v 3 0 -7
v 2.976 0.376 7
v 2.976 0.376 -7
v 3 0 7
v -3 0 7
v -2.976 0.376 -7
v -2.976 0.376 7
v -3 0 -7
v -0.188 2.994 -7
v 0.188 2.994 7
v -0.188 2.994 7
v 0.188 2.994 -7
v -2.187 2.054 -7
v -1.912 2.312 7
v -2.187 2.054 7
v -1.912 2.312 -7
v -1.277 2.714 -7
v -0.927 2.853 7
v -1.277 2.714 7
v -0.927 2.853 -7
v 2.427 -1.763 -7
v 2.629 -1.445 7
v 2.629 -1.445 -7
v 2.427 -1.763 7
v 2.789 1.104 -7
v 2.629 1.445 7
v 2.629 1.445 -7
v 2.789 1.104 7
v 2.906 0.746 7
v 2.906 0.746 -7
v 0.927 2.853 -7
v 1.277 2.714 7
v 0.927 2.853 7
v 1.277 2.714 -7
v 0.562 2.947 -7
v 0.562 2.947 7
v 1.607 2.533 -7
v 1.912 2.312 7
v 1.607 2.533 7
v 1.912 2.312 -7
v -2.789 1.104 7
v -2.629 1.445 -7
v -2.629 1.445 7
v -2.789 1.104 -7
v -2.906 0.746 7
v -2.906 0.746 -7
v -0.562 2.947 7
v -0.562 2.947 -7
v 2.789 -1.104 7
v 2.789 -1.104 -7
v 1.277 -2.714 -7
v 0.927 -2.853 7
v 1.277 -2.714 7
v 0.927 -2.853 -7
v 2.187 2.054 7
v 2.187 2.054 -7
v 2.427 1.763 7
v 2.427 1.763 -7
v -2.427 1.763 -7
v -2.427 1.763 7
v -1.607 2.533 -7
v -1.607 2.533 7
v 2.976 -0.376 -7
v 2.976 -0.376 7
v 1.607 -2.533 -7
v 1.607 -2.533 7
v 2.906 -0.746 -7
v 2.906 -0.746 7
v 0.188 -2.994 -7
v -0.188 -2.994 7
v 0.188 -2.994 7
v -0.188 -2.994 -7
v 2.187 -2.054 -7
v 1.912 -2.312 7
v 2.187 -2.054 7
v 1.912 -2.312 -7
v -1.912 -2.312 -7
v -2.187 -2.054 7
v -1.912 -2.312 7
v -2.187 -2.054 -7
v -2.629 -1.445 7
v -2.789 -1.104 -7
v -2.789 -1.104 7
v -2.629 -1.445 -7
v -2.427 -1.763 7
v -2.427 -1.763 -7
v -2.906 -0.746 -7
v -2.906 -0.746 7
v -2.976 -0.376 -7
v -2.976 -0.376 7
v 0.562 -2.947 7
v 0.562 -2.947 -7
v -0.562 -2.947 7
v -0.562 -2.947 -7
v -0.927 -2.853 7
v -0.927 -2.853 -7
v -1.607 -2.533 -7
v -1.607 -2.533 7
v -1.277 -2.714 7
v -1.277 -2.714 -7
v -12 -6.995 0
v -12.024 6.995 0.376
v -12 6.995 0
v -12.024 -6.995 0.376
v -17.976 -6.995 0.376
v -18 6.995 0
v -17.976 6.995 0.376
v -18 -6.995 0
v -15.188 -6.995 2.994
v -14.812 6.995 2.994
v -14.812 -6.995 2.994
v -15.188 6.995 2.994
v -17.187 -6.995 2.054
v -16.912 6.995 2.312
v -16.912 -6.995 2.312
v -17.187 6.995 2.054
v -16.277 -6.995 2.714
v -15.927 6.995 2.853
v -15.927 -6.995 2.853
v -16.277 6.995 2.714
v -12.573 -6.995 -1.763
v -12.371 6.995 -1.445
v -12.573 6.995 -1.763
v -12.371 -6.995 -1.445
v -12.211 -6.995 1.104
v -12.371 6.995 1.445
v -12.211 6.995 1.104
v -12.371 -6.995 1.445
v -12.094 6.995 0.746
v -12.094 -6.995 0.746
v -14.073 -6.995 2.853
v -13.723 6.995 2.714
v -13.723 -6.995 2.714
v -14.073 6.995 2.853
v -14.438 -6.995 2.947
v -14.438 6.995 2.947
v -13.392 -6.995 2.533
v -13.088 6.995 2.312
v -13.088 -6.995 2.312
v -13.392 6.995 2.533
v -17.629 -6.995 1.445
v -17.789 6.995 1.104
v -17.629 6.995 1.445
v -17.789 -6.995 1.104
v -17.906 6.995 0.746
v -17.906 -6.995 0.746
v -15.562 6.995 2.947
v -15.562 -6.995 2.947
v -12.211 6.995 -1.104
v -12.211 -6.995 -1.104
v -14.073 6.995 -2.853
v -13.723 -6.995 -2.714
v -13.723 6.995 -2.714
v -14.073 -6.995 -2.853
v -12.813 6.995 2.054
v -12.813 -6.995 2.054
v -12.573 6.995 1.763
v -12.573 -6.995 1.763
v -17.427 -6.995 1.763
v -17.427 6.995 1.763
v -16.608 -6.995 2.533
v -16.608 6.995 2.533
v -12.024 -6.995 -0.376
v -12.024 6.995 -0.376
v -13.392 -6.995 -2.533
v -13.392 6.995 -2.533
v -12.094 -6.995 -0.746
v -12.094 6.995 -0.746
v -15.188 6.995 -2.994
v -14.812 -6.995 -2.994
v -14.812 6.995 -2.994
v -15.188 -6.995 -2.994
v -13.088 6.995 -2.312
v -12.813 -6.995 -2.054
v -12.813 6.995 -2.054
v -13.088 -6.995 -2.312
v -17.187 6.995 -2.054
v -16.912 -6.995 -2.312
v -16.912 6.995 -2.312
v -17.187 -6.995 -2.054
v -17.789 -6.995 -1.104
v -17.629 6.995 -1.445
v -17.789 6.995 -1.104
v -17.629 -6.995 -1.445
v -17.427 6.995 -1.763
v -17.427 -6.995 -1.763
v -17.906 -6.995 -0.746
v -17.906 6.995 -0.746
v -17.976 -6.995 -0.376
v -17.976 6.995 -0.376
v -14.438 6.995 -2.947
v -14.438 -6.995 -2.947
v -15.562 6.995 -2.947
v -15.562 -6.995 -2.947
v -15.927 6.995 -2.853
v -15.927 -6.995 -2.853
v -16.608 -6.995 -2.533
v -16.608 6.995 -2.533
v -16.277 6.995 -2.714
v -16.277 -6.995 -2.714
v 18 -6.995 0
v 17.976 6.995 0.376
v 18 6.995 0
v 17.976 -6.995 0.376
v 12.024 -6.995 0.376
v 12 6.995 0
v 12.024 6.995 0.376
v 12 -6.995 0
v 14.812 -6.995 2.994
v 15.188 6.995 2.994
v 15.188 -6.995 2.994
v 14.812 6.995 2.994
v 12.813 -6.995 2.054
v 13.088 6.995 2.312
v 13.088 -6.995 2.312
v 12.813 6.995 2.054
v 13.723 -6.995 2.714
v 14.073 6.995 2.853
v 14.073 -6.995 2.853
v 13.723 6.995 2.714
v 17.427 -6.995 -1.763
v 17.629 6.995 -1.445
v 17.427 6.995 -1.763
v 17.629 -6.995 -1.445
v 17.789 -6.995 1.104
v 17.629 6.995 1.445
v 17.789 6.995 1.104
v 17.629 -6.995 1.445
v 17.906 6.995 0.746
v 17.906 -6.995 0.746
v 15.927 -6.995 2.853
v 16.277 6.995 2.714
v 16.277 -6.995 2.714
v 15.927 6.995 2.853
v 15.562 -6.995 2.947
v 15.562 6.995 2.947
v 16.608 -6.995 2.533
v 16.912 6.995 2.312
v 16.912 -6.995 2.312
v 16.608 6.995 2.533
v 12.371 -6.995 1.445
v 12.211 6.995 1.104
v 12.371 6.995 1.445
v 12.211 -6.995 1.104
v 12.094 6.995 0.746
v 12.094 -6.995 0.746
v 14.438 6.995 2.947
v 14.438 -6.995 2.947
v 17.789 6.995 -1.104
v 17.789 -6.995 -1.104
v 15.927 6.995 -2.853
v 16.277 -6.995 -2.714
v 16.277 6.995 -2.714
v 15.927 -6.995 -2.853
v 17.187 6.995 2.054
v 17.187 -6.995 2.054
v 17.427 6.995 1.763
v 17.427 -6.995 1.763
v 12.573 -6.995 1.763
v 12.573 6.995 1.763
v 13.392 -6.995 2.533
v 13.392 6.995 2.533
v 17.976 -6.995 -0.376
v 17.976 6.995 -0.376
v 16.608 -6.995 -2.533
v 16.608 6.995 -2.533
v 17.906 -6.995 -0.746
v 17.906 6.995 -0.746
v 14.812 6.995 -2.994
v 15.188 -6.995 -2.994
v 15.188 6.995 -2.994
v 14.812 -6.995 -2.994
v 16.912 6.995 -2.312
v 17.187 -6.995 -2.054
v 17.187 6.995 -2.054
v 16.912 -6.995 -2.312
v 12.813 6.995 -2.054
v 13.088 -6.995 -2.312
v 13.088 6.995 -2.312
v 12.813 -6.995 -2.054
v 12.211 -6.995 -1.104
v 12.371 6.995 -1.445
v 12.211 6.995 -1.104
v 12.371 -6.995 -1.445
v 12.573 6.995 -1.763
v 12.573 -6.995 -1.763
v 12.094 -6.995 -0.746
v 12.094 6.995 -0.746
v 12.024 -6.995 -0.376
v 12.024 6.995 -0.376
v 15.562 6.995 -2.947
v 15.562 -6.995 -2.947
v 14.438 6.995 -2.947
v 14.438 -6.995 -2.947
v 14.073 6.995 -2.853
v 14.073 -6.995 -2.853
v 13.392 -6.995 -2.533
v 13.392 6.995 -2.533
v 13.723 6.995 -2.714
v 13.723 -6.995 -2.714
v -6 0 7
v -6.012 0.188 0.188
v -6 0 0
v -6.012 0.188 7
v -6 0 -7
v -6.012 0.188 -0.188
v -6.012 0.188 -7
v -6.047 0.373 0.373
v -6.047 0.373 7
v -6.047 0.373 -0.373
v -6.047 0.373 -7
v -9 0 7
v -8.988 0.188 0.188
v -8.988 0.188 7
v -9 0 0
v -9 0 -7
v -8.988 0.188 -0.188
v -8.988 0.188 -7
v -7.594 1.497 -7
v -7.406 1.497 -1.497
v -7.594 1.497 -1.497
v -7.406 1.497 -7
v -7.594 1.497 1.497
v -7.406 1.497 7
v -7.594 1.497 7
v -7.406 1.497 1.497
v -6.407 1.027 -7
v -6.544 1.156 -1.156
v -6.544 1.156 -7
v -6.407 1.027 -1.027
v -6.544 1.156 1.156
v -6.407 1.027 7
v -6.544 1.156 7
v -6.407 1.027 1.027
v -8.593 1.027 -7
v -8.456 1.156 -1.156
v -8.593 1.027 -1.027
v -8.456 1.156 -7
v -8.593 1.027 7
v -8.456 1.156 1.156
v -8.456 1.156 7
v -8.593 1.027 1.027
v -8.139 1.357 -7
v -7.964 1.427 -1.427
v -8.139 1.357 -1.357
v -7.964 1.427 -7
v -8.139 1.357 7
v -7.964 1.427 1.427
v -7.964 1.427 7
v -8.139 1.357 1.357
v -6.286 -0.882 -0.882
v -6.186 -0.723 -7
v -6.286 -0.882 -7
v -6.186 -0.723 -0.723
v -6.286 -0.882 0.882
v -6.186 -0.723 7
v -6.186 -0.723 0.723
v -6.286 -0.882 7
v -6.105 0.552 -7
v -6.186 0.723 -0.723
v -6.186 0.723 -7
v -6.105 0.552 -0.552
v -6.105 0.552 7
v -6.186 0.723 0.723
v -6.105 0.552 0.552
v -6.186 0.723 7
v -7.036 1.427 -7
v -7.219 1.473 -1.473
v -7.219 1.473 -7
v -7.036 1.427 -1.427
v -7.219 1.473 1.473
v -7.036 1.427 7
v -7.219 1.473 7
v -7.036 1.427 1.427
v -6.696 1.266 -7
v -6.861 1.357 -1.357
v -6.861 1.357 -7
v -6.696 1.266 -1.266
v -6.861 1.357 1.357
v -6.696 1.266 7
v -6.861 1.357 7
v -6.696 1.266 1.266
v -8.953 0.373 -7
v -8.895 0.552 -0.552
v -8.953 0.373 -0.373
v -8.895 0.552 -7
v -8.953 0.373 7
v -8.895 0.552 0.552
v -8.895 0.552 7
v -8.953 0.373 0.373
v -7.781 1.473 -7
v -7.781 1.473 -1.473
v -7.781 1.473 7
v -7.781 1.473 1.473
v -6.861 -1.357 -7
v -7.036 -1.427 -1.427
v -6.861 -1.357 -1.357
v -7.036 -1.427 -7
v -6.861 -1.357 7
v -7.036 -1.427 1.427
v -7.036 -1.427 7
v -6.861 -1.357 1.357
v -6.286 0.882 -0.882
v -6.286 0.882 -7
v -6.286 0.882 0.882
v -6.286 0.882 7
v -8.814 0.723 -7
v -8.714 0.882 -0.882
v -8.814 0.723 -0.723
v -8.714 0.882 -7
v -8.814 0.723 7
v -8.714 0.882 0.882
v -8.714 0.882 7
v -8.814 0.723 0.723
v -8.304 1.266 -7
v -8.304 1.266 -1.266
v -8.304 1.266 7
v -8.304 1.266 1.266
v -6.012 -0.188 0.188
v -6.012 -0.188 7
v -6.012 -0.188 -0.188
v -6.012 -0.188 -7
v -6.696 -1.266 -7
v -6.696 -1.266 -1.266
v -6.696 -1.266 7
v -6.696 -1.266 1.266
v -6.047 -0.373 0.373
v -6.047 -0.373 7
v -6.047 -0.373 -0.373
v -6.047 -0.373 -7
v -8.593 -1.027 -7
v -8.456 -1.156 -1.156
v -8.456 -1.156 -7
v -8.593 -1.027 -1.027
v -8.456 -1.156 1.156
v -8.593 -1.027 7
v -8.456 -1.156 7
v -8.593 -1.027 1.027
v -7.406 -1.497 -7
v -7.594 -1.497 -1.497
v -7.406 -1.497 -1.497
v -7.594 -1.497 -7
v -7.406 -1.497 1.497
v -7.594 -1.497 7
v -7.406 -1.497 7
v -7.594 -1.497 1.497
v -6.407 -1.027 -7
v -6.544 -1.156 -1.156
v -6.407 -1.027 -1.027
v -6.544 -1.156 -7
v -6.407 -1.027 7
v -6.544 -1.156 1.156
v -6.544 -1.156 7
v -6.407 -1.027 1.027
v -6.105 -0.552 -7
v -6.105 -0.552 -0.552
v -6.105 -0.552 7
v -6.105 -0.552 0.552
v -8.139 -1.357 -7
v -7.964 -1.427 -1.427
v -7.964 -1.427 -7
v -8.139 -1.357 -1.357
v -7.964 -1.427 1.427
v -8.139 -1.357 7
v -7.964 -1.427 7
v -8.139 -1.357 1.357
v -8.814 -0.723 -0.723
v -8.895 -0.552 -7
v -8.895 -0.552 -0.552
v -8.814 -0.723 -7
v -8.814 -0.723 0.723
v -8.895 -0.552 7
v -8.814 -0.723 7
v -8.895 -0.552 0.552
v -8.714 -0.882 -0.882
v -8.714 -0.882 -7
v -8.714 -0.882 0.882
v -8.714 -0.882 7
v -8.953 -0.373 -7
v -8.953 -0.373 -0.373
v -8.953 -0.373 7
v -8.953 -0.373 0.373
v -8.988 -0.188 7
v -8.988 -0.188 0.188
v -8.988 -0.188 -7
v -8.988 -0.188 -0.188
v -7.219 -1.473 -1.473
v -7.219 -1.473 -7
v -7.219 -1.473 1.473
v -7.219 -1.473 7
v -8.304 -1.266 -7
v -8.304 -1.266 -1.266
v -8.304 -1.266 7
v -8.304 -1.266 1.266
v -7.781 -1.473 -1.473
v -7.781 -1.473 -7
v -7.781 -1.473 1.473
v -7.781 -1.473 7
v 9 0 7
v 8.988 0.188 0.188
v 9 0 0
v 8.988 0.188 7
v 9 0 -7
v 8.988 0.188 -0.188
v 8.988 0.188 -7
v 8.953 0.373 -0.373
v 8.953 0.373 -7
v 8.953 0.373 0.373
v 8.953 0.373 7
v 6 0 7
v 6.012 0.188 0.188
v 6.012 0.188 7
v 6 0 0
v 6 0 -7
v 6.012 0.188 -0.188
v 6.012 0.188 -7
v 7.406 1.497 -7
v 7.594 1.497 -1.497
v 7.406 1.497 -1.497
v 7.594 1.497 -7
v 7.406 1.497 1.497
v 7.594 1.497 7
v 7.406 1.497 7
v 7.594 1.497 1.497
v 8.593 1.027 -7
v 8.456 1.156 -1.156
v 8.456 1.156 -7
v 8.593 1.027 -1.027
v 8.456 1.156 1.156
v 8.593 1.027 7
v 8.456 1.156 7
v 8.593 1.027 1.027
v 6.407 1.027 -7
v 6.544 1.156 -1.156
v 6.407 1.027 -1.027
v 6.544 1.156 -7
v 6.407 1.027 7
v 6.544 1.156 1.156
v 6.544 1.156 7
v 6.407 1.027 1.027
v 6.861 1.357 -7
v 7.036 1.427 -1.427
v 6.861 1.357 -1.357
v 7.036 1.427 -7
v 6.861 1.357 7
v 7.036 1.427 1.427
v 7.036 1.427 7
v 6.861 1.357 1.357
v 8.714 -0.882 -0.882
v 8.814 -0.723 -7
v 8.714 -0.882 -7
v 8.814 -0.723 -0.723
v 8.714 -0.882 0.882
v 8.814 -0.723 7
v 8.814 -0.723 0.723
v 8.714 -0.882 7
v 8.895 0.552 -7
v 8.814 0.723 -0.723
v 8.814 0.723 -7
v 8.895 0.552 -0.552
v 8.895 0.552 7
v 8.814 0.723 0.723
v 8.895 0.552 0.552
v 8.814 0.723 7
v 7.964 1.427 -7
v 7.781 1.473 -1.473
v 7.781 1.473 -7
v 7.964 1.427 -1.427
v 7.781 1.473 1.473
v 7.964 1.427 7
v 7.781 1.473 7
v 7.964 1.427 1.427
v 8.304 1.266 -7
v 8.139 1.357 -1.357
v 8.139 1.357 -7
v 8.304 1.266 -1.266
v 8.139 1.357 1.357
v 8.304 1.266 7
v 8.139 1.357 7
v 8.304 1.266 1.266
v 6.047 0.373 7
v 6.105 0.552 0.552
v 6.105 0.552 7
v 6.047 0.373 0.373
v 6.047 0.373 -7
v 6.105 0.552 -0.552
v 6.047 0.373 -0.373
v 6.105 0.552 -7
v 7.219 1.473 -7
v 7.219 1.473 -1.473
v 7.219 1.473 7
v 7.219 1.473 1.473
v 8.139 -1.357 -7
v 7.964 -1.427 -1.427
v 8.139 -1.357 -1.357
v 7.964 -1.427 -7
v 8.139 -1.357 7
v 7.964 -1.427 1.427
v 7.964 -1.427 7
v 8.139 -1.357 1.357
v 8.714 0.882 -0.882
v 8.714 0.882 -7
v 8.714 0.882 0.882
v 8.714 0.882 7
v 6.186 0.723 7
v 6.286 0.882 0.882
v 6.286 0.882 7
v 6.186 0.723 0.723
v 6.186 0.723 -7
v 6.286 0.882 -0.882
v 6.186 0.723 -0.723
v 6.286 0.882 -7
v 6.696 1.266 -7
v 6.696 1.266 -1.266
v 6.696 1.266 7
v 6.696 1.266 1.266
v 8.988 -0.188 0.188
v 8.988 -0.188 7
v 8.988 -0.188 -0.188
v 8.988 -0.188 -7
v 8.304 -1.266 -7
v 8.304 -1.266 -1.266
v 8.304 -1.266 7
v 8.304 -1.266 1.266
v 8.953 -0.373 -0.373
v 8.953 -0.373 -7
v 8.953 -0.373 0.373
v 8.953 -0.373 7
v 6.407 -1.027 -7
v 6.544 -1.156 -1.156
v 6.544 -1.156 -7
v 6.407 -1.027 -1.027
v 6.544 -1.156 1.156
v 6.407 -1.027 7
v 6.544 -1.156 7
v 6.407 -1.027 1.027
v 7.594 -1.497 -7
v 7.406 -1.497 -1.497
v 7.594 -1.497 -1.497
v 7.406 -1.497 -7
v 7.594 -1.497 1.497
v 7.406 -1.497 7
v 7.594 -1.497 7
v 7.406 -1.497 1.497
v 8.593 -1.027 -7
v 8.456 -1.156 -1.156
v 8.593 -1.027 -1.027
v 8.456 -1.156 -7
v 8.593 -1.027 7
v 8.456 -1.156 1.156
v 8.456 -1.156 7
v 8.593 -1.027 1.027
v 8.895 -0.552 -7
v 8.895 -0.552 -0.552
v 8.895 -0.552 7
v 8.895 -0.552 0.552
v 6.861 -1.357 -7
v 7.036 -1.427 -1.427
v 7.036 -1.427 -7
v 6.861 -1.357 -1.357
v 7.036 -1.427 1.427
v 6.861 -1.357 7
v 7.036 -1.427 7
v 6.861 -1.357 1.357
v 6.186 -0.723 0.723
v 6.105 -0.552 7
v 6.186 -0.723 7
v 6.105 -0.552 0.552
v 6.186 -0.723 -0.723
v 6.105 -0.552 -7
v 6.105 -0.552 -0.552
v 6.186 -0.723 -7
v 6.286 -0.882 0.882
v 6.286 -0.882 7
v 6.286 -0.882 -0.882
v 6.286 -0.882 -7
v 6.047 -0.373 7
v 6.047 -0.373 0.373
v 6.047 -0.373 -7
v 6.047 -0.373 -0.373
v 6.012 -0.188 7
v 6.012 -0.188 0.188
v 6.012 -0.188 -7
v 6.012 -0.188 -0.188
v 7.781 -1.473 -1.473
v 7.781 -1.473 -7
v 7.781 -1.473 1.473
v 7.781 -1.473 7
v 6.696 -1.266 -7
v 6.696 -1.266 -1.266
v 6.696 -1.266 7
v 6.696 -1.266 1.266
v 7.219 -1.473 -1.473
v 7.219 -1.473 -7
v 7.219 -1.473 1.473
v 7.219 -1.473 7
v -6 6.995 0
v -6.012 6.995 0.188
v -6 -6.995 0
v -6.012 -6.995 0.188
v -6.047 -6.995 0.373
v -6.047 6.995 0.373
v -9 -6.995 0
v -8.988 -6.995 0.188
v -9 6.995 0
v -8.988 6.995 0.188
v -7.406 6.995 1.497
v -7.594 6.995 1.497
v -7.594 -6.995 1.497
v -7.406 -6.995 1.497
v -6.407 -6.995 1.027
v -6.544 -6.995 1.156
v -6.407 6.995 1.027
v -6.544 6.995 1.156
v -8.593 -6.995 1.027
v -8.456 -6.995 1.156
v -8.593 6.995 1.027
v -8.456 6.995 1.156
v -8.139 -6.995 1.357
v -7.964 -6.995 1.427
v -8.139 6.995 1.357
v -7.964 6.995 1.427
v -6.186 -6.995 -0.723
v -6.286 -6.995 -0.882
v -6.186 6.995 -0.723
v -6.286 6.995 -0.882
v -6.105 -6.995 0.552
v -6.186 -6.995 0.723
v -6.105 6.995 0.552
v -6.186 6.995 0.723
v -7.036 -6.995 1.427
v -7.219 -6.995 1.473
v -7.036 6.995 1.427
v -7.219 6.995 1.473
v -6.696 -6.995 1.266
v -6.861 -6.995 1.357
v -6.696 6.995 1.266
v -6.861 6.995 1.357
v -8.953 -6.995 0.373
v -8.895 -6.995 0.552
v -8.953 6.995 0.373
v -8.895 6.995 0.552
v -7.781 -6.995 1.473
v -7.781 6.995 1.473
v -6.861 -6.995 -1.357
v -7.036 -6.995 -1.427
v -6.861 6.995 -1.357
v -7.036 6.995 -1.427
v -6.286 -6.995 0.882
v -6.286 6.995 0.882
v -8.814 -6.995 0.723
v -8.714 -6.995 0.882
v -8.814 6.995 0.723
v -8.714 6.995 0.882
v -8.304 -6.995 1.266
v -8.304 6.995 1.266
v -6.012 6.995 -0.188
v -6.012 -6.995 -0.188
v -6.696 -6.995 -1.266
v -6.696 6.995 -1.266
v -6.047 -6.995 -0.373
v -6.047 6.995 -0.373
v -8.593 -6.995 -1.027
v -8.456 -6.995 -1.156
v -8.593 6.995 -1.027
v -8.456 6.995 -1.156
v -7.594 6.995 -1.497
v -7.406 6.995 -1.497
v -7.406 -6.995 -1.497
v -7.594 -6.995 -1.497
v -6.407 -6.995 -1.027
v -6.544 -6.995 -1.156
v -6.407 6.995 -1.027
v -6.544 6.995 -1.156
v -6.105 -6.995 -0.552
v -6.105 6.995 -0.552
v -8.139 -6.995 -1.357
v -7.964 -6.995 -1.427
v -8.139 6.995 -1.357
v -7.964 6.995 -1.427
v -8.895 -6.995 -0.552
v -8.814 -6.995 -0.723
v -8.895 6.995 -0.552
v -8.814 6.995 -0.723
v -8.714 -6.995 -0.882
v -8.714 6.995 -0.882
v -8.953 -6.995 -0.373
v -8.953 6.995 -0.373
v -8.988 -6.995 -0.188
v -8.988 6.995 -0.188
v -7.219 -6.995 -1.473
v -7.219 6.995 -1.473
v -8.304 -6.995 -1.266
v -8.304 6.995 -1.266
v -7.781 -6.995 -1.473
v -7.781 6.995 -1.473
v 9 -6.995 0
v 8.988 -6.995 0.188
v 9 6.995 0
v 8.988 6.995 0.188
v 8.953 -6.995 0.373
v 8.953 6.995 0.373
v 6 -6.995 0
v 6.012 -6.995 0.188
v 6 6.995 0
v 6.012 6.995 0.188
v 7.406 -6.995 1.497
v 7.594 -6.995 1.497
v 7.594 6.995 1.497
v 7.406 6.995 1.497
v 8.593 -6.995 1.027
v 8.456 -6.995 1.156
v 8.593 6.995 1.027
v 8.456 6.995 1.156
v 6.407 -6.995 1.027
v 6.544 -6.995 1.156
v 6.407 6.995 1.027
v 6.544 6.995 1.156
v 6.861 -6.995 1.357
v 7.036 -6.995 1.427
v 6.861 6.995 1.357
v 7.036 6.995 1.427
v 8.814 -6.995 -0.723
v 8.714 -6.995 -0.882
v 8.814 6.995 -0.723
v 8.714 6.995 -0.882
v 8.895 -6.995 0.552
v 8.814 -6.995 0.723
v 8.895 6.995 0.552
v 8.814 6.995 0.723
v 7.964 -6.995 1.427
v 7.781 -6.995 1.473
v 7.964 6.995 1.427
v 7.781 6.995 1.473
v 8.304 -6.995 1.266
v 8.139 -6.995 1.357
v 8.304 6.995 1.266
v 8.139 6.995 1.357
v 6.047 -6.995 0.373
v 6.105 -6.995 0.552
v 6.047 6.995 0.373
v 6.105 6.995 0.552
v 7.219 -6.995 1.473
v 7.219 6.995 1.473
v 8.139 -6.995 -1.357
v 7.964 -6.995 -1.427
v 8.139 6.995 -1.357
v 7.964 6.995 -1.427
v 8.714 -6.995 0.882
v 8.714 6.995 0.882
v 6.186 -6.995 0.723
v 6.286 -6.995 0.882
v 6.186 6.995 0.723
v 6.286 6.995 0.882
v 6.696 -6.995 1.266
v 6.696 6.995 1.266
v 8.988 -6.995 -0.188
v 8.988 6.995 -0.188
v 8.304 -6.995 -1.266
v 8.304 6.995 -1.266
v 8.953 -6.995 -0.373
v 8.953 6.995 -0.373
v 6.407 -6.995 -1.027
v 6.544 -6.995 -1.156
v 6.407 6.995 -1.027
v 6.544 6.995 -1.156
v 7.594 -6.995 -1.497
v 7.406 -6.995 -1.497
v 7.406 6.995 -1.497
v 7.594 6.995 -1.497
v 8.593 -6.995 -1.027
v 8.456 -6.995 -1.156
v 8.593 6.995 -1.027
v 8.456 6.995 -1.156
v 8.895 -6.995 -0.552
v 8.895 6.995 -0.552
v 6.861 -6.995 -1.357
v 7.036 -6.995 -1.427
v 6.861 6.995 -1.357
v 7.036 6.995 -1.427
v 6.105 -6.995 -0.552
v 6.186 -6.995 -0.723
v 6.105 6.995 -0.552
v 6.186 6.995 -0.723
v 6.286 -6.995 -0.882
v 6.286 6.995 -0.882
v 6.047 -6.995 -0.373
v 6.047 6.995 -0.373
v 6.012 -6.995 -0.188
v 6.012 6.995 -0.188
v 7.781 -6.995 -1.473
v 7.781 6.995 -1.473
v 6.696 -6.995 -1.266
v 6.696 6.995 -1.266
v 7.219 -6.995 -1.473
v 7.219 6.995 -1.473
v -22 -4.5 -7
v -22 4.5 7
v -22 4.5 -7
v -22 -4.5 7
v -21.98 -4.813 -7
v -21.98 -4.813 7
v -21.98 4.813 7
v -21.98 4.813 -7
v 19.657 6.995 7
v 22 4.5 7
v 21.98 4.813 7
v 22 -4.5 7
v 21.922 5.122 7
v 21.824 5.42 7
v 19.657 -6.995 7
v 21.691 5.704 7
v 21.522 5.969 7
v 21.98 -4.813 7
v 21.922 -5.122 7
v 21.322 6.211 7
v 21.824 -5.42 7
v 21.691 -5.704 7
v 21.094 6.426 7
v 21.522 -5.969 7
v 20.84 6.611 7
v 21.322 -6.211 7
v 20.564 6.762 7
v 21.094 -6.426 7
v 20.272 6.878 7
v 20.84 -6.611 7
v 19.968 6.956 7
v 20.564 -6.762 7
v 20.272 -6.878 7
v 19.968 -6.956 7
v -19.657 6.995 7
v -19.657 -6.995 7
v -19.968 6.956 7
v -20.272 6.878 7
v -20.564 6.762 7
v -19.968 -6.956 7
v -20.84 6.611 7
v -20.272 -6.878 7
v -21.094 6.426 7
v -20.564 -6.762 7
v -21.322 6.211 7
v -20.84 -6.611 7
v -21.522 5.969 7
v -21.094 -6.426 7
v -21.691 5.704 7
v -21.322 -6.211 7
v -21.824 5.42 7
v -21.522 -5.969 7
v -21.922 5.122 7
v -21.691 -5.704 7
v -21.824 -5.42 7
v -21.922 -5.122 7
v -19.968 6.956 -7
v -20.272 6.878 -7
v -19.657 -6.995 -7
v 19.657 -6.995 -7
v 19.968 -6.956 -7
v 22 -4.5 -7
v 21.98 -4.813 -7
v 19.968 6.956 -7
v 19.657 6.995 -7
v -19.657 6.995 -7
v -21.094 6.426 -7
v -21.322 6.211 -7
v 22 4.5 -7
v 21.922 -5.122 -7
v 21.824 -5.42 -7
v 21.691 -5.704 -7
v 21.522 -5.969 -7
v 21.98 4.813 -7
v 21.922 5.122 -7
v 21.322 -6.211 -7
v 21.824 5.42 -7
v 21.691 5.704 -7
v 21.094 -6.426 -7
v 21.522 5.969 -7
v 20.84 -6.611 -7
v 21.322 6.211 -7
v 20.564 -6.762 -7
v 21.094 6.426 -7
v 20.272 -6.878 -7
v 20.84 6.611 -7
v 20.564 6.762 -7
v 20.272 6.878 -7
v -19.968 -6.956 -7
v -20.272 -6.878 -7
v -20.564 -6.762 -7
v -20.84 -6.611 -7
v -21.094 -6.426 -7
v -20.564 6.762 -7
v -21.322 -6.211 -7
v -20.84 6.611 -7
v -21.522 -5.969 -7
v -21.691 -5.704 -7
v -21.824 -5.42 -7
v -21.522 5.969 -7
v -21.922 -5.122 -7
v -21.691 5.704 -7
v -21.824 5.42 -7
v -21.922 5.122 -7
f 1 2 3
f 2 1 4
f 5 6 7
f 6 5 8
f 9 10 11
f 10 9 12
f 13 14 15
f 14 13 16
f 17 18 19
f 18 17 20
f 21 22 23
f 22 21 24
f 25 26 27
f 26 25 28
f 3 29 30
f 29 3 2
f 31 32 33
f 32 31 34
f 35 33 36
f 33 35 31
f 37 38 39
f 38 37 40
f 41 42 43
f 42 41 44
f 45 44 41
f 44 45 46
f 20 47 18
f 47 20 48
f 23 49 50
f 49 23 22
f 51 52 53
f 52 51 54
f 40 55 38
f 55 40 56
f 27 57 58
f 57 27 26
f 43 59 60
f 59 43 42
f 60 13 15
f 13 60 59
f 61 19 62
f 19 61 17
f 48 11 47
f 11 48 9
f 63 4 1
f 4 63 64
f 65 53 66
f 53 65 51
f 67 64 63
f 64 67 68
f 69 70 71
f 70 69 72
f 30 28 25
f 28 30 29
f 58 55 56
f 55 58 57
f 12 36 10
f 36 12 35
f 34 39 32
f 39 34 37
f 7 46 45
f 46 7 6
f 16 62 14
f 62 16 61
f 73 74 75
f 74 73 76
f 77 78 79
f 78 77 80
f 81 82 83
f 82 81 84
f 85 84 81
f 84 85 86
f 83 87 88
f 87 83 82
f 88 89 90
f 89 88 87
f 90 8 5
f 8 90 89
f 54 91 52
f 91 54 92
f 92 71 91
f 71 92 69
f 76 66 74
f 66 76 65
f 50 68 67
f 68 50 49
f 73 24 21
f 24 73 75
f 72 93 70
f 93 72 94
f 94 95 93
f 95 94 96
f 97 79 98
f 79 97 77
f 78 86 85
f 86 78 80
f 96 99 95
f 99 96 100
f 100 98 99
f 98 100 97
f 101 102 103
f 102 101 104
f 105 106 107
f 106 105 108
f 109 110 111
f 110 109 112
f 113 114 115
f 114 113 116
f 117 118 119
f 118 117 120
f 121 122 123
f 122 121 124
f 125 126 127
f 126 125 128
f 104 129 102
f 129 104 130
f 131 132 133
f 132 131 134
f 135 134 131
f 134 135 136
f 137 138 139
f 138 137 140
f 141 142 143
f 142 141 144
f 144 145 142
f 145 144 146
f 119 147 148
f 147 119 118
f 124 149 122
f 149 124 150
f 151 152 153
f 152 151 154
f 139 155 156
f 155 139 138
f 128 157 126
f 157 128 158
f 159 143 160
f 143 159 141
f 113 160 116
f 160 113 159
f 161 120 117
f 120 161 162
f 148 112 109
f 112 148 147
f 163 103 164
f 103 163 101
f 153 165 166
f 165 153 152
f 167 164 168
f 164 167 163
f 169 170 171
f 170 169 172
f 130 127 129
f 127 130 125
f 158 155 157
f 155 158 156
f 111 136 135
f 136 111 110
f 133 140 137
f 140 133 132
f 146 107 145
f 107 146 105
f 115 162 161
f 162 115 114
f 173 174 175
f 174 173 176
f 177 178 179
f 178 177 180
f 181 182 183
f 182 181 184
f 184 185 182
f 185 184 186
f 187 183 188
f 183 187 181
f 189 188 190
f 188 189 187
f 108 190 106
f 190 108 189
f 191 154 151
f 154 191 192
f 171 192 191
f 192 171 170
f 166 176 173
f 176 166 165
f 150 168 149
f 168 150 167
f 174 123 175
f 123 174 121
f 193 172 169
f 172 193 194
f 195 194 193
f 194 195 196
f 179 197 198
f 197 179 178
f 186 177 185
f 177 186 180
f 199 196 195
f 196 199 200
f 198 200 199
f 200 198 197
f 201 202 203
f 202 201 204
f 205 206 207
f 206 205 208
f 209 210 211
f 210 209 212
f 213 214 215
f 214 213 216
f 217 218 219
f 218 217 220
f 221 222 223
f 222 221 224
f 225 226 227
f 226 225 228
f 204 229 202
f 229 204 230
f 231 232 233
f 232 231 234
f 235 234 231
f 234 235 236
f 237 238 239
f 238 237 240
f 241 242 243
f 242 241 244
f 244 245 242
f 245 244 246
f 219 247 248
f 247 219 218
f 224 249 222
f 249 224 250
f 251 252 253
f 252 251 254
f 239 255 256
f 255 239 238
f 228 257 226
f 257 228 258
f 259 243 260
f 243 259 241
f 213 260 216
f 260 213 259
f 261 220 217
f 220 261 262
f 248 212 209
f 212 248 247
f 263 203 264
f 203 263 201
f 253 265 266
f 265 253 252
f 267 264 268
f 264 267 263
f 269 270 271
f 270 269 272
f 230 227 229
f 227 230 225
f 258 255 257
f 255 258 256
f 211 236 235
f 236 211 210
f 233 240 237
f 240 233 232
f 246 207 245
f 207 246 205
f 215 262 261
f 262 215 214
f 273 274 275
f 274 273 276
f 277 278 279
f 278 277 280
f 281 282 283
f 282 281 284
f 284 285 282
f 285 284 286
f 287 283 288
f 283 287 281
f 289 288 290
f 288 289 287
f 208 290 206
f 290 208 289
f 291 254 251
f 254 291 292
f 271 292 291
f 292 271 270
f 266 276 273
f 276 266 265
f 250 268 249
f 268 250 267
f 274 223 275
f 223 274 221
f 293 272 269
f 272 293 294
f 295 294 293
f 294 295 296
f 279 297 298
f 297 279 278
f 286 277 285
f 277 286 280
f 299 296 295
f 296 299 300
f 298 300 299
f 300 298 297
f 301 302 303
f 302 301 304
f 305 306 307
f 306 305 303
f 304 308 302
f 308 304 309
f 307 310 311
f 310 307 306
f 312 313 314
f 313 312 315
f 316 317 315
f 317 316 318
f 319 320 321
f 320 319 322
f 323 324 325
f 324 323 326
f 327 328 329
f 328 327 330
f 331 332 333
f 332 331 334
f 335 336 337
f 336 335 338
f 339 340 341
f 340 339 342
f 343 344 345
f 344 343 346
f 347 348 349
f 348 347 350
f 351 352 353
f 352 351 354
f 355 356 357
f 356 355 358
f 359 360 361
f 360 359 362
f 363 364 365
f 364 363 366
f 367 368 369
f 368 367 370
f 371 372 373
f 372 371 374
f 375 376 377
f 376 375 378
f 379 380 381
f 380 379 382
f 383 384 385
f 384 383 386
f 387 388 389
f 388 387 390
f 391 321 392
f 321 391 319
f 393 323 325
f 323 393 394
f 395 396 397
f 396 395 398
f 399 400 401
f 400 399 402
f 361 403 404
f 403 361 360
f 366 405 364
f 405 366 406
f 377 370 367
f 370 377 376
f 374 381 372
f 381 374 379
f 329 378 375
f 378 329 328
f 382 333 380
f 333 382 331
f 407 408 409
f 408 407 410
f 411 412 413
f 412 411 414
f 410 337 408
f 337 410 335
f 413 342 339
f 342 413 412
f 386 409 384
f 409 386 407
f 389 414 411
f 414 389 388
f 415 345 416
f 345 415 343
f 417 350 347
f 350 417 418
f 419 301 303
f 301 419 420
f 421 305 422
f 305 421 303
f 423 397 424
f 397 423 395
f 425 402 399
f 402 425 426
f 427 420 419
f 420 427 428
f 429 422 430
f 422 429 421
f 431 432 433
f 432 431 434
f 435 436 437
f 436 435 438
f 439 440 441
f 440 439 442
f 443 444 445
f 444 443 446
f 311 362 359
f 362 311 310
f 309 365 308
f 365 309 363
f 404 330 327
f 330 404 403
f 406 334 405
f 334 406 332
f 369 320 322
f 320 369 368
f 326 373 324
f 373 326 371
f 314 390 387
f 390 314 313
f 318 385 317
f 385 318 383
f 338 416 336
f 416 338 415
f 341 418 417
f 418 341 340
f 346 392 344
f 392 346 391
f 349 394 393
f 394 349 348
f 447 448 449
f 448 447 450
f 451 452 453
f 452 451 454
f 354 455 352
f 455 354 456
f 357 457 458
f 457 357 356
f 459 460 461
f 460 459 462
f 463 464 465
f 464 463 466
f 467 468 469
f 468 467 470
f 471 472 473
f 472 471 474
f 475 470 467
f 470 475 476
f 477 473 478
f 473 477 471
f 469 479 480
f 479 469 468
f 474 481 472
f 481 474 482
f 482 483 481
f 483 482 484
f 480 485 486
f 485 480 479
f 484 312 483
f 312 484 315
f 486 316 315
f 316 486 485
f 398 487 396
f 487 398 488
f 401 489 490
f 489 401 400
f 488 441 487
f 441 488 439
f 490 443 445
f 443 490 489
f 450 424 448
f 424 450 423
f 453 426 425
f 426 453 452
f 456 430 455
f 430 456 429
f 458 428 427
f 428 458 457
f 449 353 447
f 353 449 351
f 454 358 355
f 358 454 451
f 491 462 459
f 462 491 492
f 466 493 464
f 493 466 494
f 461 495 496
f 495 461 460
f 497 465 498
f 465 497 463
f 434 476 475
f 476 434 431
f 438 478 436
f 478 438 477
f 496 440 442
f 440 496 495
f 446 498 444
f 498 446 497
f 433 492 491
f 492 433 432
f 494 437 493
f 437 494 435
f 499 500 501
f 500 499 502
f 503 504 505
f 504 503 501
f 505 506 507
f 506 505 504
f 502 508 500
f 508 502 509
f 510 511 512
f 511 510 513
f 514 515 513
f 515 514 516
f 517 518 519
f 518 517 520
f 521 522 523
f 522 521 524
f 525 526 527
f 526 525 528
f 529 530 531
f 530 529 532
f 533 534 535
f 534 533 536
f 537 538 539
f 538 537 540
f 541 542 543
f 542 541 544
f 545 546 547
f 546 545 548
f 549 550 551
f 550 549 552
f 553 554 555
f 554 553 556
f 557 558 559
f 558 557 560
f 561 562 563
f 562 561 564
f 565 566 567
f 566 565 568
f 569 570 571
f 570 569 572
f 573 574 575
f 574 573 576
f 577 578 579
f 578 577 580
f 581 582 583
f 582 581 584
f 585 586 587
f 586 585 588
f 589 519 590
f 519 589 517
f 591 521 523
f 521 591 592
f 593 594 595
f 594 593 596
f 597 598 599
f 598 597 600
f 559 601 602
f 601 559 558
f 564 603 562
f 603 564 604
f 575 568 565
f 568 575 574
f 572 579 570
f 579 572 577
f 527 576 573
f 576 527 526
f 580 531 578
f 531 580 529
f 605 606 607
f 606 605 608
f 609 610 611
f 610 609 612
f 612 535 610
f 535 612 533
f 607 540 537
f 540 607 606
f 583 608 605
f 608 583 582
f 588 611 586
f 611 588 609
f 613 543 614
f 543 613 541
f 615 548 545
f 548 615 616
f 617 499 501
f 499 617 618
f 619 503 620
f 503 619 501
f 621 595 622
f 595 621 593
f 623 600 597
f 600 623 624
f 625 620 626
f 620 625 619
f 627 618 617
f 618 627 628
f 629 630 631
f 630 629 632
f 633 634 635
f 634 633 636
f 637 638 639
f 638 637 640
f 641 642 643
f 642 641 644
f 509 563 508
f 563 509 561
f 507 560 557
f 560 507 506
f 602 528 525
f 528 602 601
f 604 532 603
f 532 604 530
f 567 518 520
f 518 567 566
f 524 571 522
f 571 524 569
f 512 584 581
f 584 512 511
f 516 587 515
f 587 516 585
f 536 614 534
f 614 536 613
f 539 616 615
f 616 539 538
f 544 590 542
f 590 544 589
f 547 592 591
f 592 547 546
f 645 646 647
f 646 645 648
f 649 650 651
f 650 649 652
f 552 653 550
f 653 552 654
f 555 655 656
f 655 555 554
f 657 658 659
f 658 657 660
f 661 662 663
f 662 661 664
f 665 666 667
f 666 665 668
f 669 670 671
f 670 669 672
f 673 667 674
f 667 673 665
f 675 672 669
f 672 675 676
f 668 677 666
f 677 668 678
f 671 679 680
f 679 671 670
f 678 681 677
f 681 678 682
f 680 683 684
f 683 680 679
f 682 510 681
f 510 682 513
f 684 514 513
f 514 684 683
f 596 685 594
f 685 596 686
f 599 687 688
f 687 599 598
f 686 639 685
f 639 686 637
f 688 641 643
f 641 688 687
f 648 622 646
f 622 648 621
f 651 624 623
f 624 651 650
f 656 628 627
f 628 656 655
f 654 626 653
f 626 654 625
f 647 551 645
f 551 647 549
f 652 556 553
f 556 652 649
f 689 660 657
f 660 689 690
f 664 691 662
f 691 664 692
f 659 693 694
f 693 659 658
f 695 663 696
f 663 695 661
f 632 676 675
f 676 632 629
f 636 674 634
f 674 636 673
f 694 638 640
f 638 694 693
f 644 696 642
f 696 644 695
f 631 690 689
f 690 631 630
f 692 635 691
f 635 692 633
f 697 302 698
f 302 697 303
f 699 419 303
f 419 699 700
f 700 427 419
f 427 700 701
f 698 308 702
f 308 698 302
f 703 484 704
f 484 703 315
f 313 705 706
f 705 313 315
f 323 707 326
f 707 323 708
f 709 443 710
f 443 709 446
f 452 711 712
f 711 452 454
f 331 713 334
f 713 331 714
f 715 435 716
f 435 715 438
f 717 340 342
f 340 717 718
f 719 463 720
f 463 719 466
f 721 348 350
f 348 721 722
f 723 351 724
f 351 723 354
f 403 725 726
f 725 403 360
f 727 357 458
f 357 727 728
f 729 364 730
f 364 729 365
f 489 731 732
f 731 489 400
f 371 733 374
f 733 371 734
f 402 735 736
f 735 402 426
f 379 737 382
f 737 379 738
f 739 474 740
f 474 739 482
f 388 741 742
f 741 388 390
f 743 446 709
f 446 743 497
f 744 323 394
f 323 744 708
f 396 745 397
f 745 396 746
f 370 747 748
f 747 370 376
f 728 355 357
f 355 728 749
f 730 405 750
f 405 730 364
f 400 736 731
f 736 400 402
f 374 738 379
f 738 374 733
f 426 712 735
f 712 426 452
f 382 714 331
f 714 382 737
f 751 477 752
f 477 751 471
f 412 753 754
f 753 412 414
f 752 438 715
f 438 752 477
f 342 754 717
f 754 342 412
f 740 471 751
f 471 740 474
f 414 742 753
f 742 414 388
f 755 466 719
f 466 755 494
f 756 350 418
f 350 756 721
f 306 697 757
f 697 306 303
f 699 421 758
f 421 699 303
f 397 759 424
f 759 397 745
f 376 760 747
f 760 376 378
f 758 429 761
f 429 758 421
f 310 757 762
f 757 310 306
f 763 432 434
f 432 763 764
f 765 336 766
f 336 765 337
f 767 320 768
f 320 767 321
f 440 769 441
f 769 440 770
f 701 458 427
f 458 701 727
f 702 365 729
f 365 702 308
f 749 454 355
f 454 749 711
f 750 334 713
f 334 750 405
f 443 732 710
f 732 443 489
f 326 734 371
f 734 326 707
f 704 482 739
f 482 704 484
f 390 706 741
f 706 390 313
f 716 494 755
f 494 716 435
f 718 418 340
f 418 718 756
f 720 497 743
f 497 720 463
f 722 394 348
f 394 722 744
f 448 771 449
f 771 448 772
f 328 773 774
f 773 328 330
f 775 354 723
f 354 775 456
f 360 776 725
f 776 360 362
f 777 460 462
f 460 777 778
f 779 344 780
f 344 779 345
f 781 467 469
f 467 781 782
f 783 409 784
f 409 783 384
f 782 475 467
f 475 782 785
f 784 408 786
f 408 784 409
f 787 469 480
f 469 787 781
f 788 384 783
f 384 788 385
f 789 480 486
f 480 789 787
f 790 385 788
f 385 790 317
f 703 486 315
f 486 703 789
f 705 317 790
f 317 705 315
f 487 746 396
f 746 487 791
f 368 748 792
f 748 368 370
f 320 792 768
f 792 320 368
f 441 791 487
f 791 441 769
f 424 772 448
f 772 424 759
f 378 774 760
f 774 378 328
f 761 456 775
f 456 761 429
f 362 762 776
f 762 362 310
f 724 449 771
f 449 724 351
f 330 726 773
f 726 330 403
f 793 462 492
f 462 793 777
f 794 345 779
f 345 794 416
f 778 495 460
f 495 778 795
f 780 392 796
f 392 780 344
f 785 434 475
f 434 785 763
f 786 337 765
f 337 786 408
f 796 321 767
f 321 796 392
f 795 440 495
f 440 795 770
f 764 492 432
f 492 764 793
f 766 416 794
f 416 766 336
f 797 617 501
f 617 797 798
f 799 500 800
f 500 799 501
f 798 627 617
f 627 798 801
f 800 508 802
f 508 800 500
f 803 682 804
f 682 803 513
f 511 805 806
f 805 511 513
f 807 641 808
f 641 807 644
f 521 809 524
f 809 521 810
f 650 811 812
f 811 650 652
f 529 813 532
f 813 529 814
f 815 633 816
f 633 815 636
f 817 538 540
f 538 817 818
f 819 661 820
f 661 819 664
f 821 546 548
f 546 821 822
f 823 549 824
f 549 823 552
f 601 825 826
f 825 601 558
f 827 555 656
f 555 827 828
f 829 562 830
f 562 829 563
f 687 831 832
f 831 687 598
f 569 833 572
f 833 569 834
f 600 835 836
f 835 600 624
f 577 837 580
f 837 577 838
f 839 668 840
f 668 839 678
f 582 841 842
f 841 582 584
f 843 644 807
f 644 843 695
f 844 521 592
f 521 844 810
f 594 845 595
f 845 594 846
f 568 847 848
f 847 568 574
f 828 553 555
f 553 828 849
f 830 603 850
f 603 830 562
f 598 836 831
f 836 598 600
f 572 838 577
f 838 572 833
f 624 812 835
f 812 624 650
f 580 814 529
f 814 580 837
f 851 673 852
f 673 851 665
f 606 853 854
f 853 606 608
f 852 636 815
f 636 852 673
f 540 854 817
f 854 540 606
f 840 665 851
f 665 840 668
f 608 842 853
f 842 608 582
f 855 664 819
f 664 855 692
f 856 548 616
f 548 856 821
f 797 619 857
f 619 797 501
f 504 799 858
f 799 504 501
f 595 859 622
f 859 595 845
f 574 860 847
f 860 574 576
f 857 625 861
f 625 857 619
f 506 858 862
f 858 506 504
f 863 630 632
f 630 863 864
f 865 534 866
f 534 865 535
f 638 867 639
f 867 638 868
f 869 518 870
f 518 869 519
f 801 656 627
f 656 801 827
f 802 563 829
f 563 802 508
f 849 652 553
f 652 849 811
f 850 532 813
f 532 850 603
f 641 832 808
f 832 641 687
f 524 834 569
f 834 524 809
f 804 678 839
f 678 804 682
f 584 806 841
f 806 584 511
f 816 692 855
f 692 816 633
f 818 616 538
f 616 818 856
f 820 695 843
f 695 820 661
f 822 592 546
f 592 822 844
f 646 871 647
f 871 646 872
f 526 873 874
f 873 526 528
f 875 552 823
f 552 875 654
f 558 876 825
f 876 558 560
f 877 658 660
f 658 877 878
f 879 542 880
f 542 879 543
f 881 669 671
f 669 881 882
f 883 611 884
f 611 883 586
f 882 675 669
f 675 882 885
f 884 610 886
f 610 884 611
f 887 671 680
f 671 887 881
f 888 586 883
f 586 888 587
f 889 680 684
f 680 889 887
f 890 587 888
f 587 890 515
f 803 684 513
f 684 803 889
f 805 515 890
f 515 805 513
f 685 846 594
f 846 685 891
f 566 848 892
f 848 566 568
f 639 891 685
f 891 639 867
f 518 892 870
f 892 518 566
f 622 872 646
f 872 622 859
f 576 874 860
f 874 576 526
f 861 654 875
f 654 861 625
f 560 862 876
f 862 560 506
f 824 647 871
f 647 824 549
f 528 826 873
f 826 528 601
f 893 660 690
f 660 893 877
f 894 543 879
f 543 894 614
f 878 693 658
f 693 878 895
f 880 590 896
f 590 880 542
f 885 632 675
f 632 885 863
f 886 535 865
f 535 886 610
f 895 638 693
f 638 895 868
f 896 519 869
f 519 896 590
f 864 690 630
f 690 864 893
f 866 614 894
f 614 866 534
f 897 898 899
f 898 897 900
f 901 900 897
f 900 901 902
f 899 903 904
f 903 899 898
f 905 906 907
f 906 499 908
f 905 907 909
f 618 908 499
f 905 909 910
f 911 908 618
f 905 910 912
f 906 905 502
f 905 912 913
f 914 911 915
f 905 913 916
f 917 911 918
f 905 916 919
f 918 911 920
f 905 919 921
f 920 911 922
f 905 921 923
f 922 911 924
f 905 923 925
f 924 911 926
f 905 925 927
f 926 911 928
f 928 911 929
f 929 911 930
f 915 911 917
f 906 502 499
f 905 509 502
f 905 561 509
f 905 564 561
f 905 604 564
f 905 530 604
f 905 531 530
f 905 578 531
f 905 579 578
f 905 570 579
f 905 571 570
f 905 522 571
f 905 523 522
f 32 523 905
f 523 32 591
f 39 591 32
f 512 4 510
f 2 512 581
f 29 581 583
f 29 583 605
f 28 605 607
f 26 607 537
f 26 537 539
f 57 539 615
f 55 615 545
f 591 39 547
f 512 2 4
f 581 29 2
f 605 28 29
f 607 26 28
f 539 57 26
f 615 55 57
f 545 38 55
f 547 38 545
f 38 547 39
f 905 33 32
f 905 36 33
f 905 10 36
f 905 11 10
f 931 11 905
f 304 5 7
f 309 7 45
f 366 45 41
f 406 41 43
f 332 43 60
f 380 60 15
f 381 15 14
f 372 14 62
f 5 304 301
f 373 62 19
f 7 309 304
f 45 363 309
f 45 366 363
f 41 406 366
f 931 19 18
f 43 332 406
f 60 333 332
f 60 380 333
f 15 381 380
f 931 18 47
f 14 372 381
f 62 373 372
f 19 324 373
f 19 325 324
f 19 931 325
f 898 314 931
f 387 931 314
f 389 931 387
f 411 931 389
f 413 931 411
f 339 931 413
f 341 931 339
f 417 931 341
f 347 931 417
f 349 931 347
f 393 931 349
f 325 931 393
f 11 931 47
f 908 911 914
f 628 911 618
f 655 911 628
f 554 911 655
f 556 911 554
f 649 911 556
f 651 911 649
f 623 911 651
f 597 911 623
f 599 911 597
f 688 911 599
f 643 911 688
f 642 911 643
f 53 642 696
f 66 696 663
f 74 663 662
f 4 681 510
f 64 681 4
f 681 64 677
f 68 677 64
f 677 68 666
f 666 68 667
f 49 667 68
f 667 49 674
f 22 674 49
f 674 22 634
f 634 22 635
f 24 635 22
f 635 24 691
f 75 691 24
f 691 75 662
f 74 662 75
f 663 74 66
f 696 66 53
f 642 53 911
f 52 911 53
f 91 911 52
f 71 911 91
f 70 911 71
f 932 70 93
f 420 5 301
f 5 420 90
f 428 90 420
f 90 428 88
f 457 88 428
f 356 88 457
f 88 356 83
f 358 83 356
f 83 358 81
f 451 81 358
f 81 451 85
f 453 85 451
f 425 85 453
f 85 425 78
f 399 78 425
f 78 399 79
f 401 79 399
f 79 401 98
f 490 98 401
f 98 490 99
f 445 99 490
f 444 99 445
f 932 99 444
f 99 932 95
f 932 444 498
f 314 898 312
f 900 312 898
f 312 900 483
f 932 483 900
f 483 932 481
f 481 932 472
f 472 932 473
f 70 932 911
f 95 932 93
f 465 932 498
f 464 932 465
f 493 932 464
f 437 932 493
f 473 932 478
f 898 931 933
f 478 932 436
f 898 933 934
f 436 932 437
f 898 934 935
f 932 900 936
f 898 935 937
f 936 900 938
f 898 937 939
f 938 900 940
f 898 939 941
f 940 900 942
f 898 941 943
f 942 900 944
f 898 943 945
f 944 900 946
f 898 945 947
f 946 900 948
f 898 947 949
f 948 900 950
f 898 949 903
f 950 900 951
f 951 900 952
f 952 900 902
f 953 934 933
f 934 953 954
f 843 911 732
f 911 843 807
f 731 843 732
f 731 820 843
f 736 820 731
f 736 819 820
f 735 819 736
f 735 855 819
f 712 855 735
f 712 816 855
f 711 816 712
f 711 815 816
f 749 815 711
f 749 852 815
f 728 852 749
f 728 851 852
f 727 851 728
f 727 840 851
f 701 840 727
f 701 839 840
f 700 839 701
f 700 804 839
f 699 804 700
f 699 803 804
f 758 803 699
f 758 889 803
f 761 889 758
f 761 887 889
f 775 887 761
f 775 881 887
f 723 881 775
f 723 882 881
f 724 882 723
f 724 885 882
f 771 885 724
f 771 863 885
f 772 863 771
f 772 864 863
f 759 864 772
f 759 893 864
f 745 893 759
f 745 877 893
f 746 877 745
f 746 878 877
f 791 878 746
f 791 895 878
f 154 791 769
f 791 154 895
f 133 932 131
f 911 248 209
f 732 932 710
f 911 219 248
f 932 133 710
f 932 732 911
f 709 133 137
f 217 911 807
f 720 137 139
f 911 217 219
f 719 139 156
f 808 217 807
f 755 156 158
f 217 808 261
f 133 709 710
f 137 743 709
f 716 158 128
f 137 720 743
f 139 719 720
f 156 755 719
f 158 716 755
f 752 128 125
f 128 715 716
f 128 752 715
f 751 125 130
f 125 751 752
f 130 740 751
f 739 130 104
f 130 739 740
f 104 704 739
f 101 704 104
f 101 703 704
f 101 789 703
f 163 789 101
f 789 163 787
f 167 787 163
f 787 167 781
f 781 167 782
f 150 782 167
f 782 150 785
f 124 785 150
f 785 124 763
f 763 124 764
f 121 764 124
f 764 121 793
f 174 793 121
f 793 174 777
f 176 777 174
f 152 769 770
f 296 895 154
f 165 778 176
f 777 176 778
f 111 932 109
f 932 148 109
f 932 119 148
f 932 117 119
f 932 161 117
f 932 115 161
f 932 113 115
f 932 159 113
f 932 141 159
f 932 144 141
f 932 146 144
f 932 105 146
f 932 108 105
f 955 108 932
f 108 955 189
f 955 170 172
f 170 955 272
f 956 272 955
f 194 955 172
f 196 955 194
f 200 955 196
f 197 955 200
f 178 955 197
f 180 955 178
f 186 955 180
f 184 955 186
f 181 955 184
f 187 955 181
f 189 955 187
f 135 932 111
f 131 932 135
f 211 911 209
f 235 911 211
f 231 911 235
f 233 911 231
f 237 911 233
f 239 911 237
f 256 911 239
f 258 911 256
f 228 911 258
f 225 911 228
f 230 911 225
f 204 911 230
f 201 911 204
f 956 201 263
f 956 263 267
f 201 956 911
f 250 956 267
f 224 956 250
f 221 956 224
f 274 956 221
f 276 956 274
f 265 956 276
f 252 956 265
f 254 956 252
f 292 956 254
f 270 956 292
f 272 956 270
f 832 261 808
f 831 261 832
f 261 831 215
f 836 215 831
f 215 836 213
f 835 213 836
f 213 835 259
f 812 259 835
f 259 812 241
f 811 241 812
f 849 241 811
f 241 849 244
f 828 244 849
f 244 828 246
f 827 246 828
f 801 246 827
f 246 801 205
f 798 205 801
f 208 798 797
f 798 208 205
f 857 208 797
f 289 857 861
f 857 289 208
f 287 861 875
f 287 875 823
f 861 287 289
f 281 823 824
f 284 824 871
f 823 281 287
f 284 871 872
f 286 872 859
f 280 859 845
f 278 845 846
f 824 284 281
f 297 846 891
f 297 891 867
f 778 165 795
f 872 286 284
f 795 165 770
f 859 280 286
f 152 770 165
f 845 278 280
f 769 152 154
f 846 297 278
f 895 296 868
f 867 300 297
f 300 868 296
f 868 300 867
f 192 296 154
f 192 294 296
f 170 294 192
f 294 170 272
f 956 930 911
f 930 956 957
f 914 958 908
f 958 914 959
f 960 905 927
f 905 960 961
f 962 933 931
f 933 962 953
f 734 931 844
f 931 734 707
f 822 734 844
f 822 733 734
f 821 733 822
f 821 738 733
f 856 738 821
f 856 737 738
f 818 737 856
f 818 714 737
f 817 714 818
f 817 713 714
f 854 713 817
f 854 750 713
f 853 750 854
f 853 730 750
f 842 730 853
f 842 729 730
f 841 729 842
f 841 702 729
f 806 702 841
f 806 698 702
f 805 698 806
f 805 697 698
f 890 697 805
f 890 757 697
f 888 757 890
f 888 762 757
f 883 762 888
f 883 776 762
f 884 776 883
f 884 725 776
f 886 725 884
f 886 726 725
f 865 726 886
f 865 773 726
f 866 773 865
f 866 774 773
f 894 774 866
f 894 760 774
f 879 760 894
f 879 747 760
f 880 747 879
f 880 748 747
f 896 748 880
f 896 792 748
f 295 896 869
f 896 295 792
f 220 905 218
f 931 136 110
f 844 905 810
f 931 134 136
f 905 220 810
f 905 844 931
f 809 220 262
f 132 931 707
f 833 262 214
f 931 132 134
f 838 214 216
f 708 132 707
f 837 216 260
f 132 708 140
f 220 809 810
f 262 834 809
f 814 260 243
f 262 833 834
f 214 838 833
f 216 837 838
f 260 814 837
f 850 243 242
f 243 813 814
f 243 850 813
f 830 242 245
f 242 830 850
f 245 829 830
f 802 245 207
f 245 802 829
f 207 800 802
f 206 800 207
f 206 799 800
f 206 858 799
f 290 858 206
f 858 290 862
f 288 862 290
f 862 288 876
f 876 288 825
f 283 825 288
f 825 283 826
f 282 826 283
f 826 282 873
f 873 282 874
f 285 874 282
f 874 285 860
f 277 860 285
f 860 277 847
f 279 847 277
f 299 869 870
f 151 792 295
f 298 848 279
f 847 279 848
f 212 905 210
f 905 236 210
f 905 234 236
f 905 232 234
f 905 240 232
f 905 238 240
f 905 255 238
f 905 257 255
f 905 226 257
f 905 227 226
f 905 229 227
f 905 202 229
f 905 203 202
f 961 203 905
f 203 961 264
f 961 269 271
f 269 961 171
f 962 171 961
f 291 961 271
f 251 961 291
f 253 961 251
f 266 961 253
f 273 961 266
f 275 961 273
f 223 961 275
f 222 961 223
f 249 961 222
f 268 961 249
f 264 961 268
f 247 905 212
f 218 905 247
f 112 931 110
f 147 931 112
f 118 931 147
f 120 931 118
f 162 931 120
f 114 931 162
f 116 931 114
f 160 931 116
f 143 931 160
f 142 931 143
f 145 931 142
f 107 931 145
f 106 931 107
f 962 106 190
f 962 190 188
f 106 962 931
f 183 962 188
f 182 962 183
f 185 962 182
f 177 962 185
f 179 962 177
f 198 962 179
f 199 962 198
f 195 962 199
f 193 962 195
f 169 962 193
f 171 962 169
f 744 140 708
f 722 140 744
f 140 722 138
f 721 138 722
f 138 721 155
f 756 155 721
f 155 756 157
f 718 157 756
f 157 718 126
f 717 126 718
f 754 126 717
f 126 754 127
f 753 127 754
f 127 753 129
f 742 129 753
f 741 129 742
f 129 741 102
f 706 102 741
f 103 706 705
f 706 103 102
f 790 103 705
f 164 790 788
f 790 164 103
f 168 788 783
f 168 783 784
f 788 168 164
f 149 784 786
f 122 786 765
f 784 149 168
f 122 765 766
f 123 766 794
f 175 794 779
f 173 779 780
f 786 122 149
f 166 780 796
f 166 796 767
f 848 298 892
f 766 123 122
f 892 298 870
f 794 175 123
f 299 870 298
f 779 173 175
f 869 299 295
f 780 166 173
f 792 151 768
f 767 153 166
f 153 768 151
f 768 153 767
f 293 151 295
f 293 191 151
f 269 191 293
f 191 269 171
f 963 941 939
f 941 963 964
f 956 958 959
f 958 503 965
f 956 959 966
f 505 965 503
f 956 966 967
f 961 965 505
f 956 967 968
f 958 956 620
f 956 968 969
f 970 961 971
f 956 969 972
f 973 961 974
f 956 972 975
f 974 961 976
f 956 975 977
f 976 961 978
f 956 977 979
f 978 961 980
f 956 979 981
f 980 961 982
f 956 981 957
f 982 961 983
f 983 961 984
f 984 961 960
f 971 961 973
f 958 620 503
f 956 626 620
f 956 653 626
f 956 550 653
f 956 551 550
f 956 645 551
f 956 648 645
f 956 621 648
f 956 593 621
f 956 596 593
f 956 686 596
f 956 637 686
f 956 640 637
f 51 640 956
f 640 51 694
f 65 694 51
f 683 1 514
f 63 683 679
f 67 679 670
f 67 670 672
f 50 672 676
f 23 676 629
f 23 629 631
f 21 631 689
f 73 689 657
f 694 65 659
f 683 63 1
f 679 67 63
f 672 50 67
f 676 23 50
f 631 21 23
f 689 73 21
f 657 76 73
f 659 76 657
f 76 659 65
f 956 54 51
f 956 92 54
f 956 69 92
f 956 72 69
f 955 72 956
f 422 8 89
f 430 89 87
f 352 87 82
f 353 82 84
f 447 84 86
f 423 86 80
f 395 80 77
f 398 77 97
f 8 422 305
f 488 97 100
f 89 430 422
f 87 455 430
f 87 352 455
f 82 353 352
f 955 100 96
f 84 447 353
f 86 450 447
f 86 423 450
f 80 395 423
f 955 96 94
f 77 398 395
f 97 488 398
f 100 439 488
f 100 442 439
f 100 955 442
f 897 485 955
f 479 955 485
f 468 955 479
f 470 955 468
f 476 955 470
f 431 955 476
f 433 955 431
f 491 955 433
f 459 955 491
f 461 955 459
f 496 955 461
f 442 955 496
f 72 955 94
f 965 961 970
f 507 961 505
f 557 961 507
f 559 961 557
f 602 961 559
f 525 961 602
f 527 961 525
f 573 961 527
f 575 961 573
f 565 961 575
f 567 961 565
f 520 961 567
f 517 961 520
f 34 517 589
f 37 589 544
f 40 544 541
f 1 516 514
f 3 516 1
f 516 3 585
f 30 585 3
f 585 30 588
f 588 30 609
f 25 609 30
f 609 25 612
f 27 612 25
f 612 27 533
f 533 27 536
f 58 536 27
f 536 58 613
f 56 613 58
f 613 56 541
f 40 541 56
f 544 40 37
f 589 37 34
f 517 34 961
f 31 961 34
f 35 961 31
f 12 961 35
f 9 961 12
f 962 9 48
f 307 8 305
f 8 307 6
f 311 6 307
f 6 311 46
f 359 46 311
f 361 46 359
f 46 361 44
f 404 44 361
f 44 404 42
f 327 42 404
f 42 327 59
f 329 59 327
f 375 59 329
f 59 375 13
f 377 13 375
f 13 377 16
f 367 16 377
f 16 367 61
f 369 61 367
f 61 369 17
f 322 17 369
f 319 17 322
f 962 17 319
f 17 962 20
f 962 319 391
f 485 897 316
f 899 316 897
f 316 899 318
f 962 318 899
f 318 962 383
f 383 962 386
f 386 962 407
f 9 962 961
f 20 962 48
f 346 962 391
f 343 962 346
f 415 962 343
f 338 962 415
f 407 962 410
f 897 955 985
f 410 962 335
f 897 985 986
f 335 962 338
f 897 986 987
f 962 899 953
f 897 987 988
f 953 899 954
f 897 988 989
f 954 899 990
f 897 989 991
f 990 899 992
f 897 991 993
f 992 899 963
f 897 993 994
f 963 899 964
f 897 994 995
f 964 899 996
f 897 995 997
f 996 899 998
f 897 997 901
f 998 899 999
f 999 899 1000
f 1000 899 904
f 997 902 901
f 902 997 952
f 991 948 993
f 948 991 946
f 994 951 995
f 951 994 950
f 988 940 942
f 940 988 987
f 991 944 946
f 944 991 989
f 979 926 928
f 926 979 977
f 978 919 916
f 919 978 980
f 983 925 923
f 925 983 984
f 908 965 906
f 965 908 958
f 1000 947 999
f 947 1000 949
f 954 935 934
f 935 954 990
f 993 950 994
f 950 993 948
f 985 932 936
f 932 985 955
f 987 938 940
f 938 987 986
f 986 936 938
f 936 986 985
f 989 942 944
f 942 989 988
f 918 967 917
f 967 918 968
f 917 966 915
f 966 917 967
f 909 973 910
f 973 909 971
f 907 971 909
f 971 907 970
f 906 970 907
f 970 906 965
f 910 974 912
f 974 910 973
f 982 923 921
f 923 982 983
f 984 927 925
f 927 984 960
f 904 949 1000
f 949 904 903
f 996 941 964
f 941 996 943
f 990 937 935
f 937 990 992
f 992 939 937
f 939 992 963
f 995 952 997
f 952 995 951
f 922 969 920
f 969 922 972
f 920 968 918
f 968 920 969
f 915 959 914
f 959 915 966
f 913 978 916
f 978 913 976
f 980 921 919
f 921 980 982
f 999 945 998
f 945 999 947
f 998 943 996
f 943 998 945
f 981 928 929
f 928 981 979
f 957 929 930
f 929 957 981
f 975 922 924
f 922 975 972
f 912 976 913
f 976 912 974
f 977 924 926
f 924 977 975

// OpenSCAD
$fn = 50;


difference() {
	union() {
		*color(alpha = 1.0000000000, c = "gray") {
			translate(v = [0, 7, 0]) {
				linear_extrude(height = 1) {
					text(font = "Arial:style=Bold", halign = "center", size = 4.5000000000, text = "COMMENT plate main", valign = "center");
				}
			}
		}
		translate(v = [0, 0, -7.0000000000]) {
			hull() {
				translate(v = [-19.5000000000, 4.5000000000, 0]) {
					cylinder(h = 14, r = 2.5000000000);
				}
				translate(v = [19.5000000000, 4.5000000000, 0]) {
					cylinder(h = 14, r = 2.5000000000);
				}
				translate(v = [-19.5000000000, -4.5000000000, 0]) {
					cylinder(h = 14, r = 2.5000000000);
				}
				translate(v = [19.5000000000, -4.5000000000, 0]) {
					cylinder(h = 14, r = 2.5000000000);
				}
			}
		}
	}
	union() {
		translate(v = [0.0000000000, 0.0000000000, 0.0000000000]) {
			rotate(a = [0, 0, 0]) {
				difference() {
					union() {
						translate(v = [0, 0, -125.0000000000]) {
							cylinder(h = 250, r = 3.0000000000);
						}
					}
					union();
				}
			}
		}
		translate(v = [-15.0000000000, 0.0000000000, 0.0000000000]) {
			rotate(a = [90, 0, 0]) {
				difference() {
					union() {
						translate(v = [0, 0, -125.0000000000]) {
							cylinder(h = 250, r = 3.0000000000);
						}
					}
					union();
				}
			}
		}
		translate(v = [15.0000000000, 0.0000000000, 0.0000000000]) {
			rotate(a = [90, 0, 0]) {
				difference() {
					union() {
						translate(v = [0, 0, -125.0000000000]) {
							cylinder(h = 250, r = 3.0000000000);
						}
					}
					union();
				}
			}
		}
		translate(v = [-7.5000000000, 0.0000000000, 0.0000000000]) {
			rotate(a = [0, 0, 0]) {
				difference() {
					union() {
						translate(v = [0, 0, -125.0000000000]) {
							cylinder(h = 250, r = 1.5000000000);
						}
					}
					union();
				}
			}
		}
		translate(v = [7.5000000000, 0.0000000000, 0.0000000000]) {
			rotate(a = [0, 0, 0]) {
				difference() {
					union() {
						translate(v = [0, 0, -125.0000000000]) {
							cylinder(h = 250, r = 1.5000000000);
						}
					}
					union();
				}
			}
		}
		translate(v = [-7.5000000000, 0.0000000000, 0.0000000000]) {
			rotate(a = [90, 0, 0]) {
				difference() {
					union() {
						translate(v = [0, 0, -125.0000000000]) {
							cylinder(h = 250, r = 1.5000000000);
						}
					}
					union();
				}
			}
		}
		translate(v = [7.5000000000, 0.0000000000, 0.0000000000]) {
			rotate(a = [90, 0, 0]) {
				difference() {
					union() {
						translate(v = [0, 0, -125.0000000000]) {
							cylinder(h = 250, r = 1.5000000000);
						}
					}
					union();
				}
			}
		}
	}
}
